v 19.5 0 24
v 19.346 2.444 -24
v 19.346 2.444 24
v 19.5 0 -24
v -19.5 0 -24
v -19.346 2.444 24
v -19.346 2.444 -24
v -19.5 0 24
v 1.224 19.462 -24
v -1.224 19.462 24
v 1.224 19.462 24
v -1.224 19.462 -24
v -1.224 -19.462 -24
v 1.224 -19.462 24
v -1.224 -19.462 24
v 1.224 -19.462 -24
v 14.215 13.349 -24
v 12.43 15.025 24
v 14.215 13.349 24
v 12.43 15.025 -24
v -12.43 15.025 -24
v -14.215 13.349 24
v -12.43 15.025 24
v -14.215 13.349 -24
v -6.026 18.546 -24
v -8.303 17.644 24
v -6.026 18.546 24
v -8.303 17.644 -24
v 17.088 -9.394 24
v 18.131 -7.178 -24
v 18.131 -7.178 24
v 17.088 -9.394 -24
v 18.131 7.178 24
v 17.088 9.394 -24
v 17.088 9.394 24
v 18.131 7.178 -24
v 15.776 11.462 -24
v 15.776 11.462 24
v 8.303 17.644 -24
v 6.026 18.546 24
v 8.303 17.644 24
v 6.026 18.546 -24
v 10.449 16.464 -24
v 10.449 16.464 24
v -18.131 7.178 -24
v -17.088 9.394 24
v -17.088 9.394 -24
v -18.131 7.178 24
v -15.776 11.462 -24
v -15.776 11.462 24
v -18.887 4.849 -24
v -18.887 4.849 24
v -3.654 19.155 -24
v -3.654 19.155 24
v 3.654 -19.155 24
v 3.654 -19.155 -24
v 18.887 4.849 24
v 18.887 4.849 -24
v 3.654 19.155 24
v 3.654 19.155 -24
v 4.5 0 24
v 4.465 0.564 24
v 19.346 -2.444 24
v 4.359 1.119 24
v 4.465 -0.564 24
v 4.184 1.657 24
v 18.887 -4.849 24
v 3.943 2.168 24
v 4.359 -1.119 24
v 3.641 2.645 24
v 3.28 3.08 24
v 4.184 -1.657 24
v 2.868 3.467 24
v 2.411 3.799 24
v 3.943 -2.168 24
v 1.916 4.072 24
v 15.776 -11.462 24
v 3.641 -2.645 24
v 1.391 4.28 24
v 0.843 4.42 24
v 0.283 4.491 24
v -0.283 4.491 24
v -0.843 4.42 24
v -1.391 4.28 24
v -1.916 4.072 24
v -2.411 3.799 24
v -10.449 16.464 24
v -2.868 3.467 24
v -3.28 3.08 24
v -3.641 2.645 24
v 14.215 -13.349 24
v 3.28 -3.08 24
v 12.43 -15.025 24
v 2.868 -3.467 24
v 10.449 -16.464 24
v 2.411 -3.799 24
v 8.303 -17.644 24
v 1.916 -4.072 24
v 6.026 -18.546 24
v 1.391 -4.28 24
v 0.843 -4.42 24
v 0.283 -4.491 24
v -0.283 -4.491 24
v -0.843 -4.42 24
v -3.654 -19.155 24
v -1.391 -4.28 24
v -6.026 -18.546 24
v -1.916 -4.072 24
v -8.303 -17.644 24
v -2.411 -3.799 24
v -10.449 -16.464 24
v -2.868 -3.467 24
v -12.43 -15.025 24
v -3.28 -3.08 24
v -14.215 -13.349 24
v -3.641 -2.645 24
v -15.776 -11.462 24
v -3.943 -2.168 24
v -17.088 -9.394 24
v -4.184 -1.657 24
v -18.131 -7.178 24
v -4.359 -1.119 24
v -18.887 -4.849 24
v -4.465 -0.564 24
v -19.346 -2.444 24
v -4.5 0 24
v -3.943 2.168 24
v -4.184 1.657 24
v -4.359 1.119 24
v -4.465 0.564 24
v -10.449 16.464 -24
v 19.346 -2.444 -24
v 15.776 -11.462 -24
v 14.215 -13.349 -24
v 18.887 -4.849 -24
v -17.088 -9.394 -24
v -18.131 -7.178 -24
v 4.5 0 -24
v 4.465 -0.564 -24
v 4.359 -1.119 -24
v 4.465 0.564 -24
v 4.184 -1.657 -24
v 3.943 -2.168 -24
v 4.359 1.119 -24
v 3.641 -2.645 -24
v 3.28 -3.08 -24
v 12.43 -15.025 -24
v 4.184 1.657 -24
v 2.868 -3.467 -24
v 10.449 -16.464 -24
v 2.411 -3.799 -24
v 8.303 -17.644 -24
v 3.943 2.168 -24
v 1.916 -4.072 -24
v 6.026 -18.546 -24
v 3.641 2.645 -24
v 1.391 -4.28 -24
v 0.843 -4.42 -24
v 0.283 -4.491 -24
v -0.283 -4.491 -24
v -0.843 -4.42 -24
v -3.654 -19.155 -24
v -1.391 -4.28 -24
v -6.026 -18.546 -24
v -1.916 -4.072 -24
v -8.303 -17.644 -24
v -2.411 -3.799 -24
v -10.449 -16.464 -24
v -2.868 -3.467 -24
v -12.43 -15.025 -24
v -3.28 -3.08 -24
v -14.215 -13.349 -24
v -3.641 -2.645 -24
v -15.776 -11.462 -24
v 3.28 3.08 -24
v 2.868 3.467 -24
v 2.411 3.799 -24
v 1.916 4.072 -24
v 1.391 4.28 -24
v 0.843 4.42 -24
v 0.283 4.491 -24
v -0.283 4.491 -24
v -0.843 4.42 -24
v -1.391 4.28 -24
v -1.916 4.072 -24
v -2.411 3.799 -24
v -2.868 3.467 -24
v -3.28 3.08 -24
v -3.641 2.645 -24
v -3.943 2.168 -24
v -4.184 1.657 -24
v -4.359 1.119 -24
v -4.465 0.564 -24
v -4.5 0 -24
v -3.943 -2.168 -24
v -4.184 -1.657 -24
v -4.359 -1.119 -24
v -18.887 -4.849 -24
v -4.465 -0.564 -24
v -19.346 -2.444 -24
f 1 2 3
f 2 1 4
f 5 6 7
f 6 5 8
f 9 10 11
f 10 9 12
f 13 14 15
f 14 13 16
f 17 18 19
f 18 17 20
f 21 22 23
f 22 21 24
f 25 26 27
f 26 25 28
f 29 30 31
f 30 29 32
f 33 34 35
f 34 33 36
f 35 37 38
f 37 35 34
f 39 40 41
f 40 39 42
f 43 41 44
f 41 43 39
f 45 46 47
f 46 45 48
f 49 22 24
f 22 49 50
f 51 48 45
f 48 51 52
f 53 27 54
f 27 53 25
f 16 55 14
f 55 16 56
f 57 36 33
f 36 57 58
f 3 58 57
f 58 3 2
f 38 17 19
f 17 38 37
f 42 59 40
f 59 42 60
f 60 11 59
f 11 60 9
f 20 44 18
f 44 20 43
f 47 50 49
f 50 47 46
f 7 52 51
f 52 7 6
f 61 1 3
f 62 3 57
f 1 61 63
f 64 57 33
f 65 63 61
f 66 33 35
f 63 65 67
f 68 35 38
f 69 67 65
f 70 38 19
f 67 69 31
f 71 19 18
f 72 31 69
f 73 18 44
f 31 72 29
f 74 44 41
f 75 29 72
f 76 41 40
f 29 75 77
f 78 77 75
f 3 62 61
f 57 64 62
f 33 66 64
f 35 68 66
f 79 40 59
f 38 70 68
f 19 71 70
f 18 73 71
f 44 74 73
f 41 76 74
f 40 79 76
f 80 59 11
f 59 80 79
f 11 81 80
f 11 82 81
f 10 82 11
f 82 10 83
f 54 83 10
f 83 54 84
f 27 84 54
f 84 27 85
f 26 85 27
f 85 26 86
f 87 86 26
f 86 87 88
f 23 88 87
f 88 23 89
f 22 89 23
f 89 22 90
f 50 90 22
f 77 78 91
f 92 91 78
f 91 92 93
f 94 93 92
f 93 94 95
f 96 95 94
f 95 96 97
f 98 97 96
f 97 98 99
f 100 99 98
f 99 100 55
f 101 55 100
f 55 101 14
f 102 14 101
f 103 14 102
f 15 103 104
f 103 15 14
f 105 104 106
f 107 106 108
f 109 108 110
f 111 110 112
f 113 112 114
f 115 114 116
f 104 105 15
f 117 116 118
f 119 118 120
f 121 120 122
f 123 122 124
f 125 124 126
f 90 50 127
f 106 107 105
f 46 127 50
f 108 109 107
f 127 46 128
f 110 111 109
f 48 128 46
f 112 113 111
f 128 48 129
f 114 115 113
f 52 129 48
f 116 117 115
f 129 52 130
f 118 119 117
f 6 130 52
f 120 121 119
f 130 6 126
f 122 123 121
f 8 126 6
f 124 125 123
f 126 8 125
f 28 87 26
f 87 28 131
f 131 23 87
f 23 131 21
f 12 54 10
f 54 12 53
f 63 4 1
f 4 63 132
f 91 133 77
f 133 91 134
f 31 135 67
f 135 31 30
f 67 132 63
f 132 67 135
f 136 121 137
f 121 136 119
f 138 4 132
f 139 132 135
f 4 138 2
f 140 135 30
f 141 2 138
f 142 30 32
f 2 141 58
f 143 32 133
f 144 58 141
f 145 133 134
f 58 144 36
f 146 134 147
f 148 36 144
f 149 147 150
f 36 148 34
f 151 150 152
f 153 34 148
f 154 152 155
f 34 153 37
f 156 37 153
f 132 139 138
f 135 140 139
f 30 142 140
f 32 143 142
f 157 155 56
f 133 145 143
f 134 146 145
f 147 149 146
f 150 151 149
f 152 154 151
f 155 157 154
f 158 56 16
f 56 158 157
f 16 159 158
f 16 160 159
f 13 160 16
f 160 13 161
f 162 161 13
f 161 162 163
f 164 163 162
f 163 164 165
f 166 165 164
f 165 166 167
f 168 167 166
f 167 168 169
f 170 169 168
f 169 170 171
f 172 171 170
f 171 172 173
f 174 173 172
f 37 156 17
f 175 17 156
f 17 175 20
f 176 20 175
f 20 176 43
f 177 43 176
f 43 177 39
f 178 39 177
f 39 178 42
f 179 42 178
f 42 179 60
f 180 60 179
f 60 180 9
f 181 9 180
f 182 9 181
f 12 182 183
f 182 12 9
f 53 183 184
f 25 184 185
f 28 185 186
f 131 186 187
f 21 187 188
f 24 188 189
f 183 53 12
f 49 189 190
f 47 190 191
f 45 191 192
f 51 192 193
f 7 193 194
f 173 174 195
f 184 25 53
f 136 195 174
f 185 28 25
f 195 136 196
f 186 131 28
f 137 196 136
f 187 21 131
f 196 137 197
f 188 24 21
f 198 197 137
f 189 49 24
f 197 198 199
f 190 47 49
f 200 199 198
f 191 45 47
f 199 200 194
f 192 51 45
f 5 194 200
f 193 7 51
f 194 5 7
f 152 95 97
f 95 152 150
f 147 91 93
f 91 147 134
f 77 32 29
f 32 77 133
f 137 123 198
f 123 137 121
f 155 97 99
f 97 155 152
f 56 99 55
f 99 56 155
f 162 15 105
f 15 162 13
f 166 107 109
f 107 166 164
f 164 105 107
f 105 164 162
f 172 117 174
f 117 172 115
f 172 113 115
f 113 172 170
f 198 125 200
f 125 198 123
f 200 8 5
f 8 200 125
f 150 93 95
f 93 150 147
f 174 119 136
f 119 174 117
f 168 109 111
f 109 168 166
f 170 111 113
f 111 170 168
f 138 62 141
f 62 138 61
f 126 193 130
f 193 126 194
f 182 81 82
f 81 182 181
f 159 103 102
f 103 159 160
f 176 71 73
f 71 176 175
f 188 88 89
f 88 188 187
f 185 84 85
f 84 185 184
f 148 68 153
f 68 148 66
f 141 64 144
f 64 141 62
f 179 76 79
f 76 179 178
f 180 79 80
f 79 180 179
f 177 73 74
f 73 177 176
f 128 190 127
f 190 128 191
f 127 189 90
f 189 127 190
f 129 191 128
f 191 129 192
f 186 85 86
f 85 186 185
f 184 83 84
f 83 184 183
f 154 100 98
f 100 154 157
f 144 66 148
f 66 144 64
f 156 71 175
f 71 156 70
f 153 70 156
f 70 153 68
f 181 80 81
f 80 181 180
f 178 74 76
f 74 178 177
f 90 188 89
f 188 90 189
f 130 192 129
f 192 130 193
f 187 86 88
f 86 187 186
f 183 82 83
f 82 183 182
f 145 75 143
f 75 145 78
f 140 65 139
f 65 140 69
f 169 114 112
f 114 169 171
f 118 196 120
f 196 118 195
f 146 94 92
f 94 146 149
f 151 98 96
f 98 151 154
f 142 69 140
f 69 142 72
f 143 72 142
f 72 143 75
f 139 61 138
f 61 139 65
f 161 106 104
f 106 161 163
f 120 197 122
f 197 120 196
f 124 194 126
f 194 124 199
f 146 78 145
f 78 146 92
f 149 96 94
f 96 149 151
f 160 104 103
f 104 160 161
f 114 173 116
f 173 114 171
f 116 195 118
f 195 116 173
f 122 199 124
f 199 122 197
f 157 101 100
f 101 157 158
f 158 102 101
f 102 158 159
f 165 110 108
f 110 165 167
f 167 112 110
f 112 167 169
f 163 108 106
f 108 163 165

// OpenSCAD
$fn = 50;


difference() {
	union() {
		translate(v = [0, 0, -24.0000000000]) {
			cylinder(h = 48, r = 19.5000000000);
		}
	}
	union() {
		translate(v = [0, 0, -100.0000000000]) {
			cylinder(h = 200, r = 4.5000000000);
		}
	}
}
